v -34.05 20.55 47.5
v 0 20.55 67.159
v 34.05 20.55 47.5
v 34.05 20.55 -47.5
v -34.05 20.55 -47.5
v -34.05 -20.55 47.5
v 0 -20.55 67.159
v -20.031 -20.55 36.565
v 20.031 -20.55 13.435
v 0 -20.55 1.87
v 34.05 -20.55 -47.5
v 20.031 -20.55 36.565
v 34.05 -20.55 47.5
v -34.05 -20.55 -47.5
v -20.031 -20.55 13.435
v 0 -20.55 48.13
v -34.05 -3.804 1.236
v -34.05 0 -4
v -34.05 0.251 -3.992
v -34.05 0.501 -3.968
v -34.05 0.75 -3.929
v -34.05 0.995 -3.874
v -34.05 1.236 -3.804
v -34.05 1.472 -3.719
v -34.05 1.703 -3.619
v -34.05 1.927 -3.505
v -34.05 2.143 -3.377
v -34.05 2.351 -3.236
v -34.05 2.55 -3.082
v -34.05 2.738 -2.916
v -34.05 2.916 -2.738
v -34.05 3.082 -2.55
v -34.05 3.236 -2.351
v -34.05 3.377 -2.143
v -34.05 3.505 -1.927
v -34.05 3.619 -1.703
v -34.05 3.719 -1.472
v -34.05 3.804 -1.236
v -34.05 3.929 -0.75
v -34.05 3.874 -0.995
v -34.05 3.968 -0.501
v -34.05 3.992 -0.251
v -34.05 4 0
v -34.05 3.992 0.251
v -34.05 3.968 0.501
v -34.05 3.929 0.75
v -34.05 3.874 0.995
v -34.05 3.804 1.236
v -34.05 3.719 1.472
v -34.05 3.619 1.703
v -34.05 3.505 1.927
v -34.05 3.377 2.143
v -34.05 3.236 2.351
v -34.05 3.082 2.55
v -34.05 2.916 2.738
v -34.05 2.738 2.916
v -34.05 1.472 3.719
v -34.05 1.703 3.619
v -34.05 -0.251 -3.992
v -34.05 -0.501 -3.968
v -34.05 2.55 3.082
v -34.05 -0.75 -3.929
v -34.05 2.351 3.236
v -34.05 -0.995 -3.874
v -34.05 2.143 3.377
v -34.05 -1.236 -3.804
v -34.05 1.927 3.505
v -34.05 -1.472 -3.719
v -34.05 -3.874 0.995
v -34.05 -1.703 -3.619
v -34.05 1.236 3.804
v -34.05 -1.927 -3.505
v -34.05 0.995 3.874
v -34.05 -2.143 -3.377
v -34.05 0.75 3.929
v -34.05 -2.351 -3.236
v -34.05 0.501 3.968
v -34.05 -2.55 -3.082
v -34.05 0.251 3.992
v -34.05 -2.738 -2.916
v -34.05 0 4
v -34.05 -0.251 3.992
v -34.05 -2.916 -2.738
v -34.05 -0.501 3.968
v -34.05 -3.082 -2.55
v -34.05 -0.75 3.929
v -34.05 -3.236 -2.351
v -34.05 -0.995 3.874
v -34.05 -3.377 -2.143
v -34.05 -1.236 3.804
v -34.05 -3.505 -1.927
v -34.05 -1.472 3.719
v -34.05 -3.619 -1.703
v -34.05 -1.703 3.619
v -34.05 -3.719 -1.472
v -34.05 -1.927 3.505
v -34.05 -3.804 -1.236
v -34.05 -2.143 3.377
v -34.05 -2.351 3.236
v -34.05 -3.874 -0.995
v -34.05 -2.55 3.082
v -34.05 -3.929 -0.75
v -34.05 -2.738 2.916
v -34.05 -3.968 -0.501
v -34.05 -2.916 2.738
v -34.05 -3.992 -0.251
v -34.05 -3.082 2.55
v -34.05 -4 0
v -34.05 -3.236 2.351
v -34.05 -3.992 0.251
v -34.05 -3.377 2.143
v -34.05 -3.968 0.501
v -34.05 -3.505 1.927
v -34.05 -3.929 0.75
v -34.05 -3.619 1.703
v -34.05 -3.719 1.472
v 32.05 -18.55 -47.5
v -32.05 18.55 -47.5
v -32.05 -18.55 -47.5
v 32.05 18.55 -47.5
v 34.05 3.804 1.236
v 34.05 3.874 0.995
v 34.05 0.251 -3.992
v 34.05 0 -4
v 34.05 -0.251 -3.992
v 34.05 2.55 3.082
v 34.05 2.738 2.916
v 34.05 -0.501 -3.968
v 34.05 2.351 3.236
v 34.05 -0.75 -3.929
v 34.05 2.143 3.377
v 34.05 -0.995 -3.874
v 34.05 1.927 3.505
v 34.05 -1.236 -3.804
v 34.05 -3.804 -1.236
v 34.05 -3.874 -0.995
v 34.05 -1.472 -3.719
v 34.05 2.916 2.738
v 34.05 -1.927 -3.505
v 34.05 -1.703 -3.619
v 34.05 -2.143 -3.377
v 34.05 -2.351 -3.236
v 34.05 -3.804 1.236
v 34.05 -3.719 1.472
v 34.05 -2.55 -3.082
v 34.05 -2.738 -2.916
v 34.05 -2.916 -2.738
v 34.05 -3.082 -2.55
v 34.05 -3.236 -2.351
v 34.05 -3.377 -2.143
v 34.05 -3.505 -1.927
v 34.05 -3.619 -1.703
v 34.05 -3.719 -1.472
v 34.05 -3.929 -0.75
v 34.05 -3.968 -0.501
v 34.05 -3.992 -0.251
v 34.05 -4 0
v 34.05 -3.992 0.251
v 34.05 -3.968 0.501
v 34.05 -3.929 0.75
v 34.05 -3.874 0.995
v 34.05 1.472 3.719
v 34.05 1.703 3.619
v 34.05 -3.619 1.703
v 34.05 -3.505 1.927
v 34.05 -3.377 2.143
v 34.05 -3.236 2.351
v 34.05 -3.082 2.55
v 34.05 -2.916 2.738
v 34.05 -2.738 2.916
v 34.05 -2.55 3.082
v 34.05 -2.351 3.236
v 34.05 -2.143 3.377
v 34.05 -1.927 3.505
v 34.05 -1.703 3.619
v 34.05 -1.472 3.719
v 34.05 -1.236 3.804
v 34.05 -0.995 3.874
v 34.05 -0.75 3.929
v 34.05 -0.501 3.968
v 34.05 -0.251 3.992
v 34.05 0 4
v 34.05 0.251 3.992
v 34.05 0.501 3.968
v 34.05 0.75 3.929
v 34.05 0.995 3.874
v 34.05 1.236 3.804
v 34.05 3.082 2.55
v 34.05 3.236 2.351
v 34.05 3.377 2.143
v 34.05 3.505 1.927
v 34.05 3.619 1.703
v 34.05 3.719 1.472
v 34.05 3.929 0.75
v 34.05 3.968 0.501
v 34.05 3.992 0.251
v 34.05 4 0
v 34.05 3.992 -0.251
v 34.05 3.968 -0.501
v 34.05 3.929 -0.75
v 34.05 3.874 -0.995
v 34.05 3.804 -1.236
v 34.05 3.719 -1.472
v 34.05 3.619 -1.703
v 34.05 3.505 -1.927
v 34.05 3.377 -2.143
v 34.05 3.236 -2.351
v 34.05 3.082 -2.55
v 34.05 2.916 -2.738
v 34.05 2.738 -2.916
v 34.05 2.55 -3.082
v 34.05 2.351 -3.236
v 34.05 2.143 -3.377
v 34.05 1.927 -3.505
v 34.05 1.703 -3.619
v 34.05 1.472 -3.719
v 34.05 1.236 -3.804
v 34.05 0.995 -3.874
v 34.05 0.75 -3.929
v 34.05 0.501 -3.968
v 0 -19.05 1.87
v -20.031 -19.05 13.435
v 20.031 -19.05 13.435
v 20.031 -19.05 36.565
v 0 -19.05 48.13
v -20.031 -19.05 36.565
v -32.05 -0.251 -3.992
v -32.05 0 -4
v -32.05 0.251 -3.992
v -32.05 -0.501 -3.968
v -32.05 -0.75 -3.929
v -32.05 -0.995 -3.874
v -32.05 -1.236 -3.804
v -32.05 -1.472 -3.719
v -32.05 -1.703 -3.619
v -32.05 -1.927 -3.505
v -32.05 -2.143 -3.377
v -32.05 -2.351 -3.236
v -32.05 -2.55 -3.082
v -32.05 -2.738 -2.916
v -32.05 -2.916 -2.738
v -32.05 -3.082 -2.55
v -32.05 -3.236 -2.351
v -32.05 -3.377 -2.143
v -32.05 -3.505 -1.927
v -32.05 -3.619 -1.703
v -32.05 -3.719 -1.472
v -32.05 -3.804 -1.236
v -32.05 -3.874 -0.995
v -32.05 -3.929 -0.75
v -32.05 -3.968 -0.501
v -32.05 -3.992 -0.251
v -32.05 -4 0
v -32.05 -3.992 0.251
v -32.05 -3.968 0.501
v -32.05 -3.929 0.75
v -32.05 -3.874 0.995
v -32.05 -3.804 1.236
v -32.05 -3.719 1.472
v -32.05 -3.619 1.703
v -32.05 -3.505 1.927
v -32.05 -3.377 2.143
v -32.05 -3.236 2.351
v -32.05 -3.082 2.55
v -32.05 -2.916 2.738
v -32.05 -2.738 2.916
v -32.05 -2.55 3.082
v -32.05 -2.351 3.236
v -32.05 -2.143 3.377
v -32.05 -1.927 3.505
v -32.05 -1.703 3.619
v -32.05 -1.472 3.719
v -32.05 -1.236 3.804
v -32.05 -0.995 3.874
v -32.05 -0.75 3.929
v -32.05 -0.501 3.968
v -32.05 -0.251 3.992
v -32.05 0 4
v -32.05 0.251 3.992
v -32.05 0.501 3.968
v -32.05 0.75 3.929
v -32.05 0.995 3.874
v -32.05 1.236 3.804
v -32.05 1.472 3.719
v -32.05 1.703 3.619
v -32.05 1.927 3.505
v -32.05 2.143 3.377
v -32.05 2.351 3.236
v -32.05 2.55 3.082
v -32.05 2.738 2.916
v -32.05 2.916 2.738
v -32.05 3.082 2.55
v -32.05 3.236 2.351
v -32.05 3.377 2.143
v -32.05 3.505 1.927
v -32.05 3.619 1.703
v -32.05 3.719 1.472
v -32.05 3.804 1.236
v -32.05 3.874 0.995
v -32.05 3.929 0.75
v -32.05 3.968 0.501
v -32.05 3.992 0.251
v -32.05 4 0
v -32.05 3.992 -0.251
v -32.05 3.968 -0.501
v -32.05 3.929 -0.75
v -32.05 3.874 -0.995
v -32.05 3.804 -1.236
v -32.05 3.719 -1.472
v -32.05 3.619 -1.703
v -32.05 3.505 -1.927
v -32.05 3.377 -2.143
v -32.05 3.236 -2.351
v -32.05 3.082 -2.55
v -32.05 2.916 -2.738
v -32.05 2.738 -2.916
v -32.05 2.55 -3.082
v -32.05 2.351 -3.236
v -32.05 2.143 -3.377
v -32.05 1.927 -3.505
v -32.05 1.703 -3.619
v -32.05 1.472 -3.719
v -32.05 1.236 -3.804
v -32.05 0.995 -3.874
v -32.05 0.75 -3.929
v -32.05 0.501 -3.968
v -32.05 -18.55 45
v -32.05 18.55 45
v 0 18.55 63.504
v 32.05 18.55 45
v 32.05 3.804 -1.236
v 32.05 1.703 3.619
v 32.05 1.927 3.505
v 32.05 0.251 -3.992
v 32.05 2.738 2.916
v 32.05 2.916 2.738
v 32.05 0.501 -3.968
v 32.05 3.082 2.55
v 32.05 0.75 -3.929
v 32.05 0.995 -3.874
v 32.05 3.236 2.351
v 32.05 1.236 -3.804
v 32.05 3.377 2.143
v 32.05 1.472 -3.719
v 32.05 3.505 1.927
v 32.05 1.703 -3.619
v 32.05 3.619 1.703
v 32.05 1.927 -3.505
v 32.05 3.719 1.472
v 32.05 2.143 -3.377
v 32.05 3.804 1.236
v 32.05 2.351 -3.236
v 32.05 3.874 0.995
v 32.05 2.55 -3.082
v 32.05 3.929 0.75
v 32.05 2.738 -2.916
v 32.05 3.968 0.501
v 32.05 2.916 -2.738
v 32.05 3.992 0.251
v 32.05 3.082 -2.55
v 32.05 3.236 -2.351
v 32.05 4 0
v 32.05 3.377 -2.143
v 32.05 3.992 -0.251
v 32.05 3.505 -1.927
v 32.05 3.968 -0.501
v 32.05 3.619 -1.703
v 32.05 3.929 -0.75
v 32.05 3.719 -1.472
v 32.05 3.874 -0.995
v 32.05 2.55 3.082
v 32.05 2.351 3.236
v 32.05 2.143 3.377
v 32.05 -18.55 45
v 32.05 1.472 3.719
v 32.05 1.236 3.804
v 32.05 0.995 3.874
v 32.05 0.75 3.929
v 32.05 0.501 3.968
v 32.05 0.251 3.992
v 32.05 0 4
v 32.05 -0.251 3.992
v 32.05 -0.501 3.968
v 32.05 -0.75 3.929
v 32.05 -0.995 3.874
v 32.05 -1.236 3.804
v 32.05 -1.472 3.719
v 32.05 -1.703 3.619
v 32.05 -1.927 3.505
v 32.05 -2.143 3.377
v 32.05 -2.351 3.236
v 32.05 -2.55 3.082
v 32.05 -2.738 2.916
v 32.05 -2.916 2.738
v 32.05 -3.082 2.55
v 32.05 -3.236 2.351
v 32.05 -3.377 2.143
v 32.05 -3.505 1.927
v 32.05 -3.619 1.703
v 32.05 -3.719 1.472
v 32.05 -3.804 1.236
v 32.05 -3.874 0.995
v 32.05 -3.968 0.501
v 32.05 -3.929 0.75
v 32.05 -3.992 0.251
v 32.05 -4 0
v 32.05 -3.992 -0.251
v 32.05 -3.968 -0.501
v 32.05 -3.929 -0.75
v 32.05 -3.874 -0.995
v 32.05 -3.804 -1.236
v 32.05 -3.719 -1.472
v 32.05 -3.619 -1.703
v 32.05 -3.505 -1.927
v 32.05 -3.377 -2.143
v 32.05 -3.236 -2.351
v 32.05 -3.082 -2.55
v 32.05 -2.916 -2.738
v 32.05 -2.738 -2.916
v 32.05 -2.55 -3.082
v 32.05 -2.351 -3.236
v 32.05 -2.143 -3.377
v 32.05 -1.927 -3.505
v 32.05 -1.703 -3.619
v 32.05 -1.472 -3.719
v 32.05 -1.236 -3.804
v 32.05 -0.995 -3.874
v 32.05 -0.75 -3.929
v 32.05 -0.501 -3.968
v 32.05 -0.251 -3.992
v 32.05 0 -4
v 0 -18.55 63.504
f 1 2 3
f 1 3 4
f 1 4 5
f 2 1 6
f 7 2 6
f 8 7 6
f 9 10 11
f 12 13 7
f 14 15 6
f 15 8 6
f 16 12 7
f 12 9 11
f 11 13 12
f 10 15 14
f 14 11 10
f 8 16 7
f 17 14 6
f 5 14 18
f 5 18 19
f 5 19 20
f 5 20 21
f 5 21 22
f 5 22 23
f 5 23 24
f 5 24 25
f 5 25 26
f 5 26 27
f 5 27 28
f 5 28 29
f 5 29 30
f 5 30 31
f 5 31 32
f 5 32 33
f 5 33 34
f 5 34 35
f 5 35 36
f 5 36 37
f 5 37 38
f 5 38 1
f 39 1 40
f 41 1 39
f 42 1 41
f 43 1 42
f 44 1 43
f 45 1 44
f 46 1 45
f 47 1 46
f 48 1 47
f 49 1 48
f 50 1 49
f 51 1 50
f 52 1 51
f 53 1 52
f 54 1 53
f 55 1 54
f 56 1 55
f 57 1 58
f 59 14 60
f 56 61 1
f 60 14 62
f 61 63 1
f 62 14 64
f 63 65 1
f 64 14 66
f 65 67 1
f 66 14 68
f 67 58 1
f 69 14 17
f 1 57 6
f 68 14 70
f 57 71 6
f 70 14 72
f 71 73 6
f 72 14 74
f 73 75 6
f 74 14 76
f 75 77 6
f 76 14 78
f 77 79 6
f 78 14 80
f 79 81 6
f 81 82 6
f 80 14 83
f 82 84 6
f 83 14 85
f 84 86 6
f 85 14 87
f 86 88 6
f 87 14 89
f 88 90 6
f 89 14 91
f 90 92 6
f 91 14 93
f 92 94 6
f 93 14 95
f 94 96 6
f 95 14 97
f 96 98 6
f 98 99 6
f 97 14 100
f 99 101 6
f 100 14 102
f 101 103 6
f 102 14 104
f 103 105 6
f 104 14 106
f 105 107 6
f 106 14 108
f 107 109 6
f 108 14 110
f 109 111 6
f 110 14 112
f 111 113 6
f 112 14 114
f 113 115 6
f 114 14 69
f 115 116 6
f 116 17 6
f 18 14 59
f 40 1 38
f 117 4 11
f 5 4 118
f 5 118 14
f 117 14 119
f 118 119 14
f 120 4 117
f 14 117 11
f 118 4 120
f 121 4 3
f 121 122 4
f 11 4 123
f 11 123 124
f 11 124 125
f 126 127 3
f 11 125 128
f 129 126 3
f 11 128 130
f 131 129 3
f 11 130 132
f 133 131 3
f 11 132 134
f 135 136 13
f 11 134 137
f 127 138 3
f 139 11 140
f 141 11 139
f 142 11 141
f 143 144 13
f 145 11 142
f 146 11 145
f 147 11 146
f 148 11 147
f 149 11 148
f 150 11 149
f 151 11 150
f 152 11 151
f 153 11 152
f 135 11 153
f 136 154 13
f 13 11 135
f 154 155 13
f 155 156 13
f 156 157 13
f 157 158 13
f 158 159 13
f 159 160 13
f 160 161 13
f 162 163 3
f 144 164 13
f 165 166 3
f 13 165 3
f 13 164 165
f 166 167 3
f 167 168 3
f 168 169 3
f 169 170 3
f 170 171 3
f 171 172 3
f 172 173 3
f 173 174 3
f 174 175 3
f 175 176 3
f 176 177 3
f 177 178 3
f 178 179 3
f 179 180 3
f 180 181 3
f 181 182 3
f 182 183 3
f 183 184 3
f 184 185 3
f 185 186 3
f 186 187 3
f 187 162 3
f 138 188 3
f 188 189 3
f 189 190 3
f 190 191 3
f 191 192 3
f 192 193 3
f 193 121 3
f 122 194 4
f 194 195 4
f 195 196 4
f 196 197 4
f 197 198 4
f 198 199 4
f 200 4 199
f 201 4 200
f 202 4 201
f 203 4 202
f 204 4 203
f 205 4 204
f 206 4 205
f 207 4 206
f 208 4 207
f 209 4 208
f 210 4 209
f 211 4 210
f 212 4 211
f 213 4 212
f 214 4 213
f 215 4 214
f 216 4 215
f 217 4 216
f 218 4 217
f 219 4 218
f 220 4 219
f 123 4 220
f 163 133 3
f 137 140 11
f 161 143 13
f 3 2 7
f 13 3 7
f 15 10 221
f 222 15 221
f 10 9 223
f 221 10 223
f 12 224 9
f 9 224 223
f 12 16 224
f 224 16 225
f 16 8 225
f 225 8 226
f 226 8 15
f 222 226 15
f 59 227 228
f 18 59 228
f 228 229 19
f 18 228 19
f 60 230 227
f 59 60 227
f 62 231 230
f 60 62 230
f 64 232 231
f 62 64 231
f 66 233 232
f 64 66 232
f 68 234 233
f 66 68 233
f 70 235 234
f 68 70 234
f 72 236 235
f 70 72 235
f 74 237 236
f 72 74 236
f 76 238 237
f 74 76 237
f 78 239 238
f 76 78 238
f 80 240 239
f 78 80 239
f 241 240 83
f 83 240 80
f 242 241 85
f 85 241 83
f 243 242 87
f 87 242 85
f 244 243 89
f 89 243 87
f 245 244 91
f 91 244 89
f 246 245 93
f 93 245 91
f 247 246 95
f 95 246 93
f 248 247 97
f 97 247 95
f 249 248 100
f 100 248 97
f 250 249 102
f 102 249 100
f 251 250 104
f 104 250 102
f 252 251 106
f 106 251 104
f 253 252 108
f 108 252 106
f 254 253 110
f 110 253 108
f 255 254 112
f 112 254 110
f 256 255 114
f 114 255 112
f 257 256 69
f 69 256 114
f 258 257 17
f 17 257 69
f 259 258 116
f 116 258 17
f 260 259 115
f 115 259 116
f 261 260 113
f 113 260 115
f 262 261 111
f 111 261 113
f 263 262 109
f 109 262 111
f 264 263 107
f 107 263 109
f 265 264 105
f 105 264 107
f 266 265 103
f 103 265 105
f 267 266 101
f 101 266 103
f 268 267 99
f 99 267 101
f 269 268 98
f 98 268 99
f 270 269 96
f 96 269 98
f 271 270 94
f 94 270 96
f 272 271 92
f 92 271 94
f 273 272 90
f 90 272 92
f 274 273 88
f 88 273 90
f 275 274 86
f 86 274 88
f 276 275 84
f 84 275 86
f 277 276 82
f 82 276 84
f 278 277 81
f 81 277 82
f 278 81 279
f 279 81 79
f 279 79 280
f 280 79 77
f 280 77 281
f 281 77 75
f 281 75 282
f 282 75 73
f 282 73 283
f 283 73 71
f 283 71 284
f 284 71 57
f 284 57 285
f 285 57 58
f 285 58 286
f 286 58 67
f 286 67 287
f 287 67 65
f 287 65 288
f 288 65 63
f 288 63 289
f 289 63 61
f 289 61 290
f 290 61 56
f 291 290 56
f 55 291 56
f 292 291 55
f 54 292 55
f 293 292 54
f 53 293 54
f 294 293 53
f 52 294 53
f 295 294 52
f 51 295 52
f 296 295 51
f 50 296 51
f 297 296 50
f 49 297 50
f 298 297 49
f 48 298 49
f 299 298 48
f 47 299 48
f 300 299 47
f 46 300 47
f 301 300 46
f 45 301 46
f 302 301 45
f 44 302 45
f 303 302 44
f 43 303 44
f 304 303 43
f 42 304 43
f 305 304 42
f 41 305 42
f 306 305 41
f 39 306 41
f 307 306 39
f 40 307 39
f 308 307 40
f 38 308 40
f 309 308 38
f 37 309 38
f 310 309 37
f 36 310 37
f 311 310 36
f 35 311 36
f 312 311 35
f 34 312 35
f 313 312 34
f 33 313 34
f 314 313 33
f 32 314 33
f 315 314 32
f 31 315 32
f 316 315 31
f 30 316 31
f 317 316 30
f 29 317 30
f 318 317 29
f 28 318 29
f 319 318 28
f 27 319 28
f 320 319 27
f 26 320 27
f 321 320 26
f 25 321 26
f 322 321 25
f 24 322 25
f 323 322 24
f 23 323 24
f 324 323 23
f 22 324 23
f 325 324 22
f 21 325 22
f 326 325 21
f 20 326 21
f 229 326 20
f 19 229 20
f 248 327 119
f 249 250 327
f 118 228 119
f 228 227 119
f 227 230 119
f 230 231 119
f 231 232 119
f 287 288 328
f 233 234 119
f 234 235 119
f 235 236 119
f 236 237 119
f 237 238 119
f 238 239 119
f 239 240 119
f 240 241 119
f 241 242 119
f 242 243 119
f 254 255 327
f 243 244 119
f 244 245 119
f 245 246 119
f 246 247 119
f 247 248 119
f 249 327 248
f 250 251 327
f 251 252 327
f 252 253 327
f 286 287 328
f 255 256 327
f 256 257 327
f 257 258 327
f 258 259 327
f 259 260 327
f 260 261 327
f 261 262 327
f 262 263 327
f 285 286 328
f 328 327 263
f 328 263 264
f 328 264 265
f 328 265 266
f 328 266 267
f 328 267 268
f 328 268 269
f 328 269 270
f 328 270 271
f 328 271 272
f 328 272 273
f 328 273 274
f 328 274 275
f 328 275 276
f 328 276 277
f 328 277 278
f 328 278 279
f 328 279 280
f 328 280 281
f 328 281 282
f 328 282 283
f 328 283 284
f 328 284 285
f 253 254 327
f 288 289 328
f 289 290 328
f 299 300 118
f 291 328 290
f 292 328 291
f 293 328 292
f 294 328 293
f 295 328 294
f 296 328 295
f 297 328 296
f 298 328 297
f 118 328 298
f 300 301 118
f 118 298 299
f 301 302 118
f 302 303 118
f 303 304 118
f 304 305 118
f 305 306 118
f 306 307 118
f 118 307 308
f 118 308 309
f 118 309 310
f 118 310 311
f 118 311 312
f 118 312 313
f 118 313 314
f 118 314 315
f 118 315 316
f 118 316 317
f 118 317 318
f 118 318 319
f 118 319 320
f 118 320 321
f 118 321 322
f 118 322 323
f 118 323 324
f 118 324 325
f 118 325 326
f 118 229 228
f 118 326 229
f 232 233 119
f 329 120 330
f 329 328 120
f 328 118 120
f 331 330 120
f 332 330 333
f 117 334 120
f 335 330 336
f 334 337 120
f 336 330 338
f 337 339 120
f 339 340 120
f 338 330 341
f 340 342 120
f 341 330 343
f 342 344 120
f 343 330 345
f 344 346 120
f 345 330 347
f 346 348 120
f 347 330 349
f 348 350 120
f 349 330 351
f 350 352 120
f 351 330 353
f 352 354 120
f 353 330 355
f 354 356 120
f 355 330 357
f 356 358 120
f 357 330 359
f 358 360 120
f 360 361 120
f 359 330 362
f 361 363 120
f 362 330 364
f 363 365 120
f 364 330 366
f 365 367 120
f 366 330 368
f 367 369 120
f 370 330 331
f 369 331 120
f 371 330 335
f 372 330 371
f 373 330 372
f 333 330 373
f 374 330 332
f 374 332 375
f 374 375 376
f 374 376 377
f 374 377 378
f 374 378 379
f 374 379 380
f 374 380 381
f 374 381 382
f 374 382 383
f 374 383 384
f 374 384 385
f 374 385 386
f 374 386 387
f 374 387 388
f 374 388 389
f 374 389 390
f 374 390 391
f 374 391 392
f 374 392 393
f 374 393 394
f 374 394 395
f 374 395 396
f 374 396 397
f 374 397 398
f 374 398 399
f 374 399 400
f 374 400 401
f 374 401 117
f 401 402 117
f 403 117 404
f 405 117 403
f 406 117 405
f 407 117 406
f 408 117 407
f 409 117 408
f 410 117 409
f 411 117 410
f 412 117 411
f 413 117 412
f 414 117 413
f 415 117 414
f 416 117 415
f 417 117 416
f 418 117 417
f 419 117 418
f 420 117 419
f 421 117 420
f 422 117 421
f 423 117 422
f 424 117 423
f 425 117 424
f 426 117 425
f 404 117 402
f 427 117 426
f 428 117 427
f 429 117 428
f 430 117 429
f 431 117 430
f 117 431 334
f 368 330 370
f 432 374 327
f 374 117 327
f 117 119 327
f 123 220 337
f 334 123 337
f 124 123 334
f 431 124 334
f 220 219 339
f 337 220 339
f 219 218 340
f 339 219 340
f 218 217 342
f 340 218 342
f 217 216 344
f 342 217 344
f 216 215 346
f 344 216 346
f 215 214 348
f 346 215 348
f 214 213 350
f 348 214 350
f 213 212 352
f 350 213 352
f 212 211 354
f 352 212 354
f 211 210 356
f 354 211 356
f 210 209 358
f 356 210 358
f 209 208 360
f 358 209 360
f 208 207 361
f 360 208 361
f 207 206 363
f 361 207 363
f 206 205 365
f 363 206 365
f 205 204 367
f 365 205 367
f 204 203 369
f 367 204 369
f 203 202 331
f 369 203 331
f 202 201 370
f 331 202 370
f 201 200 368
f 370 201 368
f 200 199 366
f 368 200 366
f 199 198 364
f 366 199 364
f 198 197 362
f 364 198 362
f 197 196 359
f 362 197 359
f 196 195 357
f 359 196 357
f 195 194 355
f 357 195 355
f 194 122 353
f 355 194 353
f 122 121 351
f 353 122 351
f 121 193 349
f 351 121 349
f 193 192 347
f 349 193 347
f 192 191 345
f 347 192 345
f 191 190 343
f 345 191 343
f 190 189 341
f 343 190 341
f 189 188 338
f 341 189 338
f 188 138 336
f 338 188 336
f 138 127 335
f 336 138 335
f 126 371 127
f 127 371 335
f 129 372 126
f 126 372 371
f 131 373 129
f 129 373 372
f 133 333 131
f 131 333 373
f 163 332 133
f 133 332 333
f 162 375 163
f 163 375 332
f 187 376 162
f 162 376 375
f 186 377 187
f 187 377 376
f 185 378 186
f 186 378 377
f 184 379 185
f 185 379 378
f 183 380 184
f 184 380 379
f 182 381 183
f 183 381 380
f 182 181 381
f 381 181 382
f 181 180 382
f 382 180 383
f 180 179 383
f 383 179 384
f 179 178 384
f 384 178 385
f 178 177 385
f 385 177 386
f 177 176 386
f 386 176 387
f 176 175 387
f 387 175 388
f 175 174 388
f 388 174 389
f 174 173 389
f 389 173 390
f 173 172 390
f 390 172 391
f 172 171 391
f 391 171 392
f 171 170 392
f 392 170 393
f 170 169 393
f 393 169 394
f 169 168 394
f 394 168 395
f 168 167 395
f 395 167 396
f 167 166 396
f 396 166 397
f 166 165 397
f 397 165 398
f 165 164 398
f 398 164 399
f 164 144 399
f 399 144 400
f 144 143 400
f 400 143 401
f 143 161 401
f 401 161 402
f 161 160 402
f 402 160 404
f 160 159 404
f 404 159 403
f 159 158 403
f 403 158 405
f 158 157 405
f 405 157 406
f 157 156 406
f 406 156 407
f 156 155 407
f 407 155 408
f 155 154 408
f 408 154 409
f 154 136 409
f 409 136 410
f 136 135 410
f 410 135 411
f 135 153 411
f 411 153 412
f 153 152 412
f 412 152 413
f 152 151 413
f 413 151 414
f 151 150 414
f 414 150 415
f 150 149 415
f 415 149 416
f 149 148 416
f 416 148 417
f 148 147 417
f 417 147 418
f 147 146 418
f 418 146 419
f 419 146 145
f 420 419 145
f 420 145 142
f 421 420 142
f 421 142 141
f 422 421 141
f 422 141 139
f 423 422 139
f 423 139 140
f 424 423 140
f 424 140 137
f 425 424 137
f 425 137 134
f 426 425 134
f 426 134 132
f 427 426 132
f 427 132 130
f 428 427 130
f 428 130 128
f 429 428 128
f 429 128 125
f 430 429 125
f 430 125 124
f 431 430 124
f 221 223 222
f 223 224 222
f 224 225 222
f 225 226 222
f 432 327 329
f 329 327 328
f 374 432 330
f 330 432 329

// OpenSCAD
$fn = 100; // Set circles to high-precision

// Functions for calculating the half-hexagons
function edge_length(width) = (width/2) / cos(30); // CAH
function point_height(width) = (width/2) * tan(30); // TOA
function leg(width) = edge_length(width) * sqrt(1/2);
function x_offset(width) = (width/2) - leg(width) * cos(15);
function y_offset(width, length) = length/2 - (leg(width) * sin(15));

// Function for the hexagon cutout
function hex_len(width) = 2 * (cos(30) * width);

// Core size variables
interior = 4 + .1; // compensate for thickness of interior piece
h = 33 + interior;
w = 60 + interior;
l = 90;

// Values for interior space
h_pad = 4;
w_pad = 4;
l_pad = 5;

// The hexagon cutout
h_cutout = 3;
hex_edge = edge_length(w/1.6);

rotate([90,0,0]){
	difference(){
		// The exterior shape
		union(){
			cube([w+w_pad, l+l_pad, h+h_pad], center=true); // Center Cube
			translate([x_offset(w+w_pad),y_offset(w+w_pad,l+l_pad),0]){
				rotate([0,0,-30]) cube([edge_length(w+w_pad),edge_length(w+w_pad),h+h_pad], center=true);
			}
			translate([-x_offset(w+w_pad),y_offset(w+w_pad,l+l_pad),0]){
				rotate([0,0,30]) cube([edge_length(w+w_pad),edge_length(w+w_pad),h+h_pad], center=true);
			}
		}

		// The interior shape
		translate([0,0,0]){
			union(){
				cube([w, l, h], center=true); // Center Cube
				translate([0,-y_offset(w,l),0]){
					rotate([0,0,0]) cube([w,edge_length(w),h], center=true);
				}
				translate([x_offset(w),y_offset(w,l),0]){
					rotate([0,0,-30]) cube([edge_length(w),edge_length(w),h], center=true);
				}
				translate([-x_offset(w),y_offset(w,l),0]){
					rotate([0,0,30]) cube([edge_length(w),edge_length(w),h], center=true);
				}
				rotate([0,90,0]) cylinder(100, r=4, center=true);
			}
		}

	translate([0,25,(h+h_pad)/2]){
		// The cutout
			union(){
				rotate([0,0,0]) cube([hex_len(hex_edge),hex_edge,h_cutout], center=true);
				rotate([0,0,60]) cube([hex_len(hex_edge),hex_edge,h_cutout], center=true);
				rotate([0,0,120]) cube([hex_len(hex_edge),hex_edge,h_cutout], center=true);
			}
		}
	}
}
